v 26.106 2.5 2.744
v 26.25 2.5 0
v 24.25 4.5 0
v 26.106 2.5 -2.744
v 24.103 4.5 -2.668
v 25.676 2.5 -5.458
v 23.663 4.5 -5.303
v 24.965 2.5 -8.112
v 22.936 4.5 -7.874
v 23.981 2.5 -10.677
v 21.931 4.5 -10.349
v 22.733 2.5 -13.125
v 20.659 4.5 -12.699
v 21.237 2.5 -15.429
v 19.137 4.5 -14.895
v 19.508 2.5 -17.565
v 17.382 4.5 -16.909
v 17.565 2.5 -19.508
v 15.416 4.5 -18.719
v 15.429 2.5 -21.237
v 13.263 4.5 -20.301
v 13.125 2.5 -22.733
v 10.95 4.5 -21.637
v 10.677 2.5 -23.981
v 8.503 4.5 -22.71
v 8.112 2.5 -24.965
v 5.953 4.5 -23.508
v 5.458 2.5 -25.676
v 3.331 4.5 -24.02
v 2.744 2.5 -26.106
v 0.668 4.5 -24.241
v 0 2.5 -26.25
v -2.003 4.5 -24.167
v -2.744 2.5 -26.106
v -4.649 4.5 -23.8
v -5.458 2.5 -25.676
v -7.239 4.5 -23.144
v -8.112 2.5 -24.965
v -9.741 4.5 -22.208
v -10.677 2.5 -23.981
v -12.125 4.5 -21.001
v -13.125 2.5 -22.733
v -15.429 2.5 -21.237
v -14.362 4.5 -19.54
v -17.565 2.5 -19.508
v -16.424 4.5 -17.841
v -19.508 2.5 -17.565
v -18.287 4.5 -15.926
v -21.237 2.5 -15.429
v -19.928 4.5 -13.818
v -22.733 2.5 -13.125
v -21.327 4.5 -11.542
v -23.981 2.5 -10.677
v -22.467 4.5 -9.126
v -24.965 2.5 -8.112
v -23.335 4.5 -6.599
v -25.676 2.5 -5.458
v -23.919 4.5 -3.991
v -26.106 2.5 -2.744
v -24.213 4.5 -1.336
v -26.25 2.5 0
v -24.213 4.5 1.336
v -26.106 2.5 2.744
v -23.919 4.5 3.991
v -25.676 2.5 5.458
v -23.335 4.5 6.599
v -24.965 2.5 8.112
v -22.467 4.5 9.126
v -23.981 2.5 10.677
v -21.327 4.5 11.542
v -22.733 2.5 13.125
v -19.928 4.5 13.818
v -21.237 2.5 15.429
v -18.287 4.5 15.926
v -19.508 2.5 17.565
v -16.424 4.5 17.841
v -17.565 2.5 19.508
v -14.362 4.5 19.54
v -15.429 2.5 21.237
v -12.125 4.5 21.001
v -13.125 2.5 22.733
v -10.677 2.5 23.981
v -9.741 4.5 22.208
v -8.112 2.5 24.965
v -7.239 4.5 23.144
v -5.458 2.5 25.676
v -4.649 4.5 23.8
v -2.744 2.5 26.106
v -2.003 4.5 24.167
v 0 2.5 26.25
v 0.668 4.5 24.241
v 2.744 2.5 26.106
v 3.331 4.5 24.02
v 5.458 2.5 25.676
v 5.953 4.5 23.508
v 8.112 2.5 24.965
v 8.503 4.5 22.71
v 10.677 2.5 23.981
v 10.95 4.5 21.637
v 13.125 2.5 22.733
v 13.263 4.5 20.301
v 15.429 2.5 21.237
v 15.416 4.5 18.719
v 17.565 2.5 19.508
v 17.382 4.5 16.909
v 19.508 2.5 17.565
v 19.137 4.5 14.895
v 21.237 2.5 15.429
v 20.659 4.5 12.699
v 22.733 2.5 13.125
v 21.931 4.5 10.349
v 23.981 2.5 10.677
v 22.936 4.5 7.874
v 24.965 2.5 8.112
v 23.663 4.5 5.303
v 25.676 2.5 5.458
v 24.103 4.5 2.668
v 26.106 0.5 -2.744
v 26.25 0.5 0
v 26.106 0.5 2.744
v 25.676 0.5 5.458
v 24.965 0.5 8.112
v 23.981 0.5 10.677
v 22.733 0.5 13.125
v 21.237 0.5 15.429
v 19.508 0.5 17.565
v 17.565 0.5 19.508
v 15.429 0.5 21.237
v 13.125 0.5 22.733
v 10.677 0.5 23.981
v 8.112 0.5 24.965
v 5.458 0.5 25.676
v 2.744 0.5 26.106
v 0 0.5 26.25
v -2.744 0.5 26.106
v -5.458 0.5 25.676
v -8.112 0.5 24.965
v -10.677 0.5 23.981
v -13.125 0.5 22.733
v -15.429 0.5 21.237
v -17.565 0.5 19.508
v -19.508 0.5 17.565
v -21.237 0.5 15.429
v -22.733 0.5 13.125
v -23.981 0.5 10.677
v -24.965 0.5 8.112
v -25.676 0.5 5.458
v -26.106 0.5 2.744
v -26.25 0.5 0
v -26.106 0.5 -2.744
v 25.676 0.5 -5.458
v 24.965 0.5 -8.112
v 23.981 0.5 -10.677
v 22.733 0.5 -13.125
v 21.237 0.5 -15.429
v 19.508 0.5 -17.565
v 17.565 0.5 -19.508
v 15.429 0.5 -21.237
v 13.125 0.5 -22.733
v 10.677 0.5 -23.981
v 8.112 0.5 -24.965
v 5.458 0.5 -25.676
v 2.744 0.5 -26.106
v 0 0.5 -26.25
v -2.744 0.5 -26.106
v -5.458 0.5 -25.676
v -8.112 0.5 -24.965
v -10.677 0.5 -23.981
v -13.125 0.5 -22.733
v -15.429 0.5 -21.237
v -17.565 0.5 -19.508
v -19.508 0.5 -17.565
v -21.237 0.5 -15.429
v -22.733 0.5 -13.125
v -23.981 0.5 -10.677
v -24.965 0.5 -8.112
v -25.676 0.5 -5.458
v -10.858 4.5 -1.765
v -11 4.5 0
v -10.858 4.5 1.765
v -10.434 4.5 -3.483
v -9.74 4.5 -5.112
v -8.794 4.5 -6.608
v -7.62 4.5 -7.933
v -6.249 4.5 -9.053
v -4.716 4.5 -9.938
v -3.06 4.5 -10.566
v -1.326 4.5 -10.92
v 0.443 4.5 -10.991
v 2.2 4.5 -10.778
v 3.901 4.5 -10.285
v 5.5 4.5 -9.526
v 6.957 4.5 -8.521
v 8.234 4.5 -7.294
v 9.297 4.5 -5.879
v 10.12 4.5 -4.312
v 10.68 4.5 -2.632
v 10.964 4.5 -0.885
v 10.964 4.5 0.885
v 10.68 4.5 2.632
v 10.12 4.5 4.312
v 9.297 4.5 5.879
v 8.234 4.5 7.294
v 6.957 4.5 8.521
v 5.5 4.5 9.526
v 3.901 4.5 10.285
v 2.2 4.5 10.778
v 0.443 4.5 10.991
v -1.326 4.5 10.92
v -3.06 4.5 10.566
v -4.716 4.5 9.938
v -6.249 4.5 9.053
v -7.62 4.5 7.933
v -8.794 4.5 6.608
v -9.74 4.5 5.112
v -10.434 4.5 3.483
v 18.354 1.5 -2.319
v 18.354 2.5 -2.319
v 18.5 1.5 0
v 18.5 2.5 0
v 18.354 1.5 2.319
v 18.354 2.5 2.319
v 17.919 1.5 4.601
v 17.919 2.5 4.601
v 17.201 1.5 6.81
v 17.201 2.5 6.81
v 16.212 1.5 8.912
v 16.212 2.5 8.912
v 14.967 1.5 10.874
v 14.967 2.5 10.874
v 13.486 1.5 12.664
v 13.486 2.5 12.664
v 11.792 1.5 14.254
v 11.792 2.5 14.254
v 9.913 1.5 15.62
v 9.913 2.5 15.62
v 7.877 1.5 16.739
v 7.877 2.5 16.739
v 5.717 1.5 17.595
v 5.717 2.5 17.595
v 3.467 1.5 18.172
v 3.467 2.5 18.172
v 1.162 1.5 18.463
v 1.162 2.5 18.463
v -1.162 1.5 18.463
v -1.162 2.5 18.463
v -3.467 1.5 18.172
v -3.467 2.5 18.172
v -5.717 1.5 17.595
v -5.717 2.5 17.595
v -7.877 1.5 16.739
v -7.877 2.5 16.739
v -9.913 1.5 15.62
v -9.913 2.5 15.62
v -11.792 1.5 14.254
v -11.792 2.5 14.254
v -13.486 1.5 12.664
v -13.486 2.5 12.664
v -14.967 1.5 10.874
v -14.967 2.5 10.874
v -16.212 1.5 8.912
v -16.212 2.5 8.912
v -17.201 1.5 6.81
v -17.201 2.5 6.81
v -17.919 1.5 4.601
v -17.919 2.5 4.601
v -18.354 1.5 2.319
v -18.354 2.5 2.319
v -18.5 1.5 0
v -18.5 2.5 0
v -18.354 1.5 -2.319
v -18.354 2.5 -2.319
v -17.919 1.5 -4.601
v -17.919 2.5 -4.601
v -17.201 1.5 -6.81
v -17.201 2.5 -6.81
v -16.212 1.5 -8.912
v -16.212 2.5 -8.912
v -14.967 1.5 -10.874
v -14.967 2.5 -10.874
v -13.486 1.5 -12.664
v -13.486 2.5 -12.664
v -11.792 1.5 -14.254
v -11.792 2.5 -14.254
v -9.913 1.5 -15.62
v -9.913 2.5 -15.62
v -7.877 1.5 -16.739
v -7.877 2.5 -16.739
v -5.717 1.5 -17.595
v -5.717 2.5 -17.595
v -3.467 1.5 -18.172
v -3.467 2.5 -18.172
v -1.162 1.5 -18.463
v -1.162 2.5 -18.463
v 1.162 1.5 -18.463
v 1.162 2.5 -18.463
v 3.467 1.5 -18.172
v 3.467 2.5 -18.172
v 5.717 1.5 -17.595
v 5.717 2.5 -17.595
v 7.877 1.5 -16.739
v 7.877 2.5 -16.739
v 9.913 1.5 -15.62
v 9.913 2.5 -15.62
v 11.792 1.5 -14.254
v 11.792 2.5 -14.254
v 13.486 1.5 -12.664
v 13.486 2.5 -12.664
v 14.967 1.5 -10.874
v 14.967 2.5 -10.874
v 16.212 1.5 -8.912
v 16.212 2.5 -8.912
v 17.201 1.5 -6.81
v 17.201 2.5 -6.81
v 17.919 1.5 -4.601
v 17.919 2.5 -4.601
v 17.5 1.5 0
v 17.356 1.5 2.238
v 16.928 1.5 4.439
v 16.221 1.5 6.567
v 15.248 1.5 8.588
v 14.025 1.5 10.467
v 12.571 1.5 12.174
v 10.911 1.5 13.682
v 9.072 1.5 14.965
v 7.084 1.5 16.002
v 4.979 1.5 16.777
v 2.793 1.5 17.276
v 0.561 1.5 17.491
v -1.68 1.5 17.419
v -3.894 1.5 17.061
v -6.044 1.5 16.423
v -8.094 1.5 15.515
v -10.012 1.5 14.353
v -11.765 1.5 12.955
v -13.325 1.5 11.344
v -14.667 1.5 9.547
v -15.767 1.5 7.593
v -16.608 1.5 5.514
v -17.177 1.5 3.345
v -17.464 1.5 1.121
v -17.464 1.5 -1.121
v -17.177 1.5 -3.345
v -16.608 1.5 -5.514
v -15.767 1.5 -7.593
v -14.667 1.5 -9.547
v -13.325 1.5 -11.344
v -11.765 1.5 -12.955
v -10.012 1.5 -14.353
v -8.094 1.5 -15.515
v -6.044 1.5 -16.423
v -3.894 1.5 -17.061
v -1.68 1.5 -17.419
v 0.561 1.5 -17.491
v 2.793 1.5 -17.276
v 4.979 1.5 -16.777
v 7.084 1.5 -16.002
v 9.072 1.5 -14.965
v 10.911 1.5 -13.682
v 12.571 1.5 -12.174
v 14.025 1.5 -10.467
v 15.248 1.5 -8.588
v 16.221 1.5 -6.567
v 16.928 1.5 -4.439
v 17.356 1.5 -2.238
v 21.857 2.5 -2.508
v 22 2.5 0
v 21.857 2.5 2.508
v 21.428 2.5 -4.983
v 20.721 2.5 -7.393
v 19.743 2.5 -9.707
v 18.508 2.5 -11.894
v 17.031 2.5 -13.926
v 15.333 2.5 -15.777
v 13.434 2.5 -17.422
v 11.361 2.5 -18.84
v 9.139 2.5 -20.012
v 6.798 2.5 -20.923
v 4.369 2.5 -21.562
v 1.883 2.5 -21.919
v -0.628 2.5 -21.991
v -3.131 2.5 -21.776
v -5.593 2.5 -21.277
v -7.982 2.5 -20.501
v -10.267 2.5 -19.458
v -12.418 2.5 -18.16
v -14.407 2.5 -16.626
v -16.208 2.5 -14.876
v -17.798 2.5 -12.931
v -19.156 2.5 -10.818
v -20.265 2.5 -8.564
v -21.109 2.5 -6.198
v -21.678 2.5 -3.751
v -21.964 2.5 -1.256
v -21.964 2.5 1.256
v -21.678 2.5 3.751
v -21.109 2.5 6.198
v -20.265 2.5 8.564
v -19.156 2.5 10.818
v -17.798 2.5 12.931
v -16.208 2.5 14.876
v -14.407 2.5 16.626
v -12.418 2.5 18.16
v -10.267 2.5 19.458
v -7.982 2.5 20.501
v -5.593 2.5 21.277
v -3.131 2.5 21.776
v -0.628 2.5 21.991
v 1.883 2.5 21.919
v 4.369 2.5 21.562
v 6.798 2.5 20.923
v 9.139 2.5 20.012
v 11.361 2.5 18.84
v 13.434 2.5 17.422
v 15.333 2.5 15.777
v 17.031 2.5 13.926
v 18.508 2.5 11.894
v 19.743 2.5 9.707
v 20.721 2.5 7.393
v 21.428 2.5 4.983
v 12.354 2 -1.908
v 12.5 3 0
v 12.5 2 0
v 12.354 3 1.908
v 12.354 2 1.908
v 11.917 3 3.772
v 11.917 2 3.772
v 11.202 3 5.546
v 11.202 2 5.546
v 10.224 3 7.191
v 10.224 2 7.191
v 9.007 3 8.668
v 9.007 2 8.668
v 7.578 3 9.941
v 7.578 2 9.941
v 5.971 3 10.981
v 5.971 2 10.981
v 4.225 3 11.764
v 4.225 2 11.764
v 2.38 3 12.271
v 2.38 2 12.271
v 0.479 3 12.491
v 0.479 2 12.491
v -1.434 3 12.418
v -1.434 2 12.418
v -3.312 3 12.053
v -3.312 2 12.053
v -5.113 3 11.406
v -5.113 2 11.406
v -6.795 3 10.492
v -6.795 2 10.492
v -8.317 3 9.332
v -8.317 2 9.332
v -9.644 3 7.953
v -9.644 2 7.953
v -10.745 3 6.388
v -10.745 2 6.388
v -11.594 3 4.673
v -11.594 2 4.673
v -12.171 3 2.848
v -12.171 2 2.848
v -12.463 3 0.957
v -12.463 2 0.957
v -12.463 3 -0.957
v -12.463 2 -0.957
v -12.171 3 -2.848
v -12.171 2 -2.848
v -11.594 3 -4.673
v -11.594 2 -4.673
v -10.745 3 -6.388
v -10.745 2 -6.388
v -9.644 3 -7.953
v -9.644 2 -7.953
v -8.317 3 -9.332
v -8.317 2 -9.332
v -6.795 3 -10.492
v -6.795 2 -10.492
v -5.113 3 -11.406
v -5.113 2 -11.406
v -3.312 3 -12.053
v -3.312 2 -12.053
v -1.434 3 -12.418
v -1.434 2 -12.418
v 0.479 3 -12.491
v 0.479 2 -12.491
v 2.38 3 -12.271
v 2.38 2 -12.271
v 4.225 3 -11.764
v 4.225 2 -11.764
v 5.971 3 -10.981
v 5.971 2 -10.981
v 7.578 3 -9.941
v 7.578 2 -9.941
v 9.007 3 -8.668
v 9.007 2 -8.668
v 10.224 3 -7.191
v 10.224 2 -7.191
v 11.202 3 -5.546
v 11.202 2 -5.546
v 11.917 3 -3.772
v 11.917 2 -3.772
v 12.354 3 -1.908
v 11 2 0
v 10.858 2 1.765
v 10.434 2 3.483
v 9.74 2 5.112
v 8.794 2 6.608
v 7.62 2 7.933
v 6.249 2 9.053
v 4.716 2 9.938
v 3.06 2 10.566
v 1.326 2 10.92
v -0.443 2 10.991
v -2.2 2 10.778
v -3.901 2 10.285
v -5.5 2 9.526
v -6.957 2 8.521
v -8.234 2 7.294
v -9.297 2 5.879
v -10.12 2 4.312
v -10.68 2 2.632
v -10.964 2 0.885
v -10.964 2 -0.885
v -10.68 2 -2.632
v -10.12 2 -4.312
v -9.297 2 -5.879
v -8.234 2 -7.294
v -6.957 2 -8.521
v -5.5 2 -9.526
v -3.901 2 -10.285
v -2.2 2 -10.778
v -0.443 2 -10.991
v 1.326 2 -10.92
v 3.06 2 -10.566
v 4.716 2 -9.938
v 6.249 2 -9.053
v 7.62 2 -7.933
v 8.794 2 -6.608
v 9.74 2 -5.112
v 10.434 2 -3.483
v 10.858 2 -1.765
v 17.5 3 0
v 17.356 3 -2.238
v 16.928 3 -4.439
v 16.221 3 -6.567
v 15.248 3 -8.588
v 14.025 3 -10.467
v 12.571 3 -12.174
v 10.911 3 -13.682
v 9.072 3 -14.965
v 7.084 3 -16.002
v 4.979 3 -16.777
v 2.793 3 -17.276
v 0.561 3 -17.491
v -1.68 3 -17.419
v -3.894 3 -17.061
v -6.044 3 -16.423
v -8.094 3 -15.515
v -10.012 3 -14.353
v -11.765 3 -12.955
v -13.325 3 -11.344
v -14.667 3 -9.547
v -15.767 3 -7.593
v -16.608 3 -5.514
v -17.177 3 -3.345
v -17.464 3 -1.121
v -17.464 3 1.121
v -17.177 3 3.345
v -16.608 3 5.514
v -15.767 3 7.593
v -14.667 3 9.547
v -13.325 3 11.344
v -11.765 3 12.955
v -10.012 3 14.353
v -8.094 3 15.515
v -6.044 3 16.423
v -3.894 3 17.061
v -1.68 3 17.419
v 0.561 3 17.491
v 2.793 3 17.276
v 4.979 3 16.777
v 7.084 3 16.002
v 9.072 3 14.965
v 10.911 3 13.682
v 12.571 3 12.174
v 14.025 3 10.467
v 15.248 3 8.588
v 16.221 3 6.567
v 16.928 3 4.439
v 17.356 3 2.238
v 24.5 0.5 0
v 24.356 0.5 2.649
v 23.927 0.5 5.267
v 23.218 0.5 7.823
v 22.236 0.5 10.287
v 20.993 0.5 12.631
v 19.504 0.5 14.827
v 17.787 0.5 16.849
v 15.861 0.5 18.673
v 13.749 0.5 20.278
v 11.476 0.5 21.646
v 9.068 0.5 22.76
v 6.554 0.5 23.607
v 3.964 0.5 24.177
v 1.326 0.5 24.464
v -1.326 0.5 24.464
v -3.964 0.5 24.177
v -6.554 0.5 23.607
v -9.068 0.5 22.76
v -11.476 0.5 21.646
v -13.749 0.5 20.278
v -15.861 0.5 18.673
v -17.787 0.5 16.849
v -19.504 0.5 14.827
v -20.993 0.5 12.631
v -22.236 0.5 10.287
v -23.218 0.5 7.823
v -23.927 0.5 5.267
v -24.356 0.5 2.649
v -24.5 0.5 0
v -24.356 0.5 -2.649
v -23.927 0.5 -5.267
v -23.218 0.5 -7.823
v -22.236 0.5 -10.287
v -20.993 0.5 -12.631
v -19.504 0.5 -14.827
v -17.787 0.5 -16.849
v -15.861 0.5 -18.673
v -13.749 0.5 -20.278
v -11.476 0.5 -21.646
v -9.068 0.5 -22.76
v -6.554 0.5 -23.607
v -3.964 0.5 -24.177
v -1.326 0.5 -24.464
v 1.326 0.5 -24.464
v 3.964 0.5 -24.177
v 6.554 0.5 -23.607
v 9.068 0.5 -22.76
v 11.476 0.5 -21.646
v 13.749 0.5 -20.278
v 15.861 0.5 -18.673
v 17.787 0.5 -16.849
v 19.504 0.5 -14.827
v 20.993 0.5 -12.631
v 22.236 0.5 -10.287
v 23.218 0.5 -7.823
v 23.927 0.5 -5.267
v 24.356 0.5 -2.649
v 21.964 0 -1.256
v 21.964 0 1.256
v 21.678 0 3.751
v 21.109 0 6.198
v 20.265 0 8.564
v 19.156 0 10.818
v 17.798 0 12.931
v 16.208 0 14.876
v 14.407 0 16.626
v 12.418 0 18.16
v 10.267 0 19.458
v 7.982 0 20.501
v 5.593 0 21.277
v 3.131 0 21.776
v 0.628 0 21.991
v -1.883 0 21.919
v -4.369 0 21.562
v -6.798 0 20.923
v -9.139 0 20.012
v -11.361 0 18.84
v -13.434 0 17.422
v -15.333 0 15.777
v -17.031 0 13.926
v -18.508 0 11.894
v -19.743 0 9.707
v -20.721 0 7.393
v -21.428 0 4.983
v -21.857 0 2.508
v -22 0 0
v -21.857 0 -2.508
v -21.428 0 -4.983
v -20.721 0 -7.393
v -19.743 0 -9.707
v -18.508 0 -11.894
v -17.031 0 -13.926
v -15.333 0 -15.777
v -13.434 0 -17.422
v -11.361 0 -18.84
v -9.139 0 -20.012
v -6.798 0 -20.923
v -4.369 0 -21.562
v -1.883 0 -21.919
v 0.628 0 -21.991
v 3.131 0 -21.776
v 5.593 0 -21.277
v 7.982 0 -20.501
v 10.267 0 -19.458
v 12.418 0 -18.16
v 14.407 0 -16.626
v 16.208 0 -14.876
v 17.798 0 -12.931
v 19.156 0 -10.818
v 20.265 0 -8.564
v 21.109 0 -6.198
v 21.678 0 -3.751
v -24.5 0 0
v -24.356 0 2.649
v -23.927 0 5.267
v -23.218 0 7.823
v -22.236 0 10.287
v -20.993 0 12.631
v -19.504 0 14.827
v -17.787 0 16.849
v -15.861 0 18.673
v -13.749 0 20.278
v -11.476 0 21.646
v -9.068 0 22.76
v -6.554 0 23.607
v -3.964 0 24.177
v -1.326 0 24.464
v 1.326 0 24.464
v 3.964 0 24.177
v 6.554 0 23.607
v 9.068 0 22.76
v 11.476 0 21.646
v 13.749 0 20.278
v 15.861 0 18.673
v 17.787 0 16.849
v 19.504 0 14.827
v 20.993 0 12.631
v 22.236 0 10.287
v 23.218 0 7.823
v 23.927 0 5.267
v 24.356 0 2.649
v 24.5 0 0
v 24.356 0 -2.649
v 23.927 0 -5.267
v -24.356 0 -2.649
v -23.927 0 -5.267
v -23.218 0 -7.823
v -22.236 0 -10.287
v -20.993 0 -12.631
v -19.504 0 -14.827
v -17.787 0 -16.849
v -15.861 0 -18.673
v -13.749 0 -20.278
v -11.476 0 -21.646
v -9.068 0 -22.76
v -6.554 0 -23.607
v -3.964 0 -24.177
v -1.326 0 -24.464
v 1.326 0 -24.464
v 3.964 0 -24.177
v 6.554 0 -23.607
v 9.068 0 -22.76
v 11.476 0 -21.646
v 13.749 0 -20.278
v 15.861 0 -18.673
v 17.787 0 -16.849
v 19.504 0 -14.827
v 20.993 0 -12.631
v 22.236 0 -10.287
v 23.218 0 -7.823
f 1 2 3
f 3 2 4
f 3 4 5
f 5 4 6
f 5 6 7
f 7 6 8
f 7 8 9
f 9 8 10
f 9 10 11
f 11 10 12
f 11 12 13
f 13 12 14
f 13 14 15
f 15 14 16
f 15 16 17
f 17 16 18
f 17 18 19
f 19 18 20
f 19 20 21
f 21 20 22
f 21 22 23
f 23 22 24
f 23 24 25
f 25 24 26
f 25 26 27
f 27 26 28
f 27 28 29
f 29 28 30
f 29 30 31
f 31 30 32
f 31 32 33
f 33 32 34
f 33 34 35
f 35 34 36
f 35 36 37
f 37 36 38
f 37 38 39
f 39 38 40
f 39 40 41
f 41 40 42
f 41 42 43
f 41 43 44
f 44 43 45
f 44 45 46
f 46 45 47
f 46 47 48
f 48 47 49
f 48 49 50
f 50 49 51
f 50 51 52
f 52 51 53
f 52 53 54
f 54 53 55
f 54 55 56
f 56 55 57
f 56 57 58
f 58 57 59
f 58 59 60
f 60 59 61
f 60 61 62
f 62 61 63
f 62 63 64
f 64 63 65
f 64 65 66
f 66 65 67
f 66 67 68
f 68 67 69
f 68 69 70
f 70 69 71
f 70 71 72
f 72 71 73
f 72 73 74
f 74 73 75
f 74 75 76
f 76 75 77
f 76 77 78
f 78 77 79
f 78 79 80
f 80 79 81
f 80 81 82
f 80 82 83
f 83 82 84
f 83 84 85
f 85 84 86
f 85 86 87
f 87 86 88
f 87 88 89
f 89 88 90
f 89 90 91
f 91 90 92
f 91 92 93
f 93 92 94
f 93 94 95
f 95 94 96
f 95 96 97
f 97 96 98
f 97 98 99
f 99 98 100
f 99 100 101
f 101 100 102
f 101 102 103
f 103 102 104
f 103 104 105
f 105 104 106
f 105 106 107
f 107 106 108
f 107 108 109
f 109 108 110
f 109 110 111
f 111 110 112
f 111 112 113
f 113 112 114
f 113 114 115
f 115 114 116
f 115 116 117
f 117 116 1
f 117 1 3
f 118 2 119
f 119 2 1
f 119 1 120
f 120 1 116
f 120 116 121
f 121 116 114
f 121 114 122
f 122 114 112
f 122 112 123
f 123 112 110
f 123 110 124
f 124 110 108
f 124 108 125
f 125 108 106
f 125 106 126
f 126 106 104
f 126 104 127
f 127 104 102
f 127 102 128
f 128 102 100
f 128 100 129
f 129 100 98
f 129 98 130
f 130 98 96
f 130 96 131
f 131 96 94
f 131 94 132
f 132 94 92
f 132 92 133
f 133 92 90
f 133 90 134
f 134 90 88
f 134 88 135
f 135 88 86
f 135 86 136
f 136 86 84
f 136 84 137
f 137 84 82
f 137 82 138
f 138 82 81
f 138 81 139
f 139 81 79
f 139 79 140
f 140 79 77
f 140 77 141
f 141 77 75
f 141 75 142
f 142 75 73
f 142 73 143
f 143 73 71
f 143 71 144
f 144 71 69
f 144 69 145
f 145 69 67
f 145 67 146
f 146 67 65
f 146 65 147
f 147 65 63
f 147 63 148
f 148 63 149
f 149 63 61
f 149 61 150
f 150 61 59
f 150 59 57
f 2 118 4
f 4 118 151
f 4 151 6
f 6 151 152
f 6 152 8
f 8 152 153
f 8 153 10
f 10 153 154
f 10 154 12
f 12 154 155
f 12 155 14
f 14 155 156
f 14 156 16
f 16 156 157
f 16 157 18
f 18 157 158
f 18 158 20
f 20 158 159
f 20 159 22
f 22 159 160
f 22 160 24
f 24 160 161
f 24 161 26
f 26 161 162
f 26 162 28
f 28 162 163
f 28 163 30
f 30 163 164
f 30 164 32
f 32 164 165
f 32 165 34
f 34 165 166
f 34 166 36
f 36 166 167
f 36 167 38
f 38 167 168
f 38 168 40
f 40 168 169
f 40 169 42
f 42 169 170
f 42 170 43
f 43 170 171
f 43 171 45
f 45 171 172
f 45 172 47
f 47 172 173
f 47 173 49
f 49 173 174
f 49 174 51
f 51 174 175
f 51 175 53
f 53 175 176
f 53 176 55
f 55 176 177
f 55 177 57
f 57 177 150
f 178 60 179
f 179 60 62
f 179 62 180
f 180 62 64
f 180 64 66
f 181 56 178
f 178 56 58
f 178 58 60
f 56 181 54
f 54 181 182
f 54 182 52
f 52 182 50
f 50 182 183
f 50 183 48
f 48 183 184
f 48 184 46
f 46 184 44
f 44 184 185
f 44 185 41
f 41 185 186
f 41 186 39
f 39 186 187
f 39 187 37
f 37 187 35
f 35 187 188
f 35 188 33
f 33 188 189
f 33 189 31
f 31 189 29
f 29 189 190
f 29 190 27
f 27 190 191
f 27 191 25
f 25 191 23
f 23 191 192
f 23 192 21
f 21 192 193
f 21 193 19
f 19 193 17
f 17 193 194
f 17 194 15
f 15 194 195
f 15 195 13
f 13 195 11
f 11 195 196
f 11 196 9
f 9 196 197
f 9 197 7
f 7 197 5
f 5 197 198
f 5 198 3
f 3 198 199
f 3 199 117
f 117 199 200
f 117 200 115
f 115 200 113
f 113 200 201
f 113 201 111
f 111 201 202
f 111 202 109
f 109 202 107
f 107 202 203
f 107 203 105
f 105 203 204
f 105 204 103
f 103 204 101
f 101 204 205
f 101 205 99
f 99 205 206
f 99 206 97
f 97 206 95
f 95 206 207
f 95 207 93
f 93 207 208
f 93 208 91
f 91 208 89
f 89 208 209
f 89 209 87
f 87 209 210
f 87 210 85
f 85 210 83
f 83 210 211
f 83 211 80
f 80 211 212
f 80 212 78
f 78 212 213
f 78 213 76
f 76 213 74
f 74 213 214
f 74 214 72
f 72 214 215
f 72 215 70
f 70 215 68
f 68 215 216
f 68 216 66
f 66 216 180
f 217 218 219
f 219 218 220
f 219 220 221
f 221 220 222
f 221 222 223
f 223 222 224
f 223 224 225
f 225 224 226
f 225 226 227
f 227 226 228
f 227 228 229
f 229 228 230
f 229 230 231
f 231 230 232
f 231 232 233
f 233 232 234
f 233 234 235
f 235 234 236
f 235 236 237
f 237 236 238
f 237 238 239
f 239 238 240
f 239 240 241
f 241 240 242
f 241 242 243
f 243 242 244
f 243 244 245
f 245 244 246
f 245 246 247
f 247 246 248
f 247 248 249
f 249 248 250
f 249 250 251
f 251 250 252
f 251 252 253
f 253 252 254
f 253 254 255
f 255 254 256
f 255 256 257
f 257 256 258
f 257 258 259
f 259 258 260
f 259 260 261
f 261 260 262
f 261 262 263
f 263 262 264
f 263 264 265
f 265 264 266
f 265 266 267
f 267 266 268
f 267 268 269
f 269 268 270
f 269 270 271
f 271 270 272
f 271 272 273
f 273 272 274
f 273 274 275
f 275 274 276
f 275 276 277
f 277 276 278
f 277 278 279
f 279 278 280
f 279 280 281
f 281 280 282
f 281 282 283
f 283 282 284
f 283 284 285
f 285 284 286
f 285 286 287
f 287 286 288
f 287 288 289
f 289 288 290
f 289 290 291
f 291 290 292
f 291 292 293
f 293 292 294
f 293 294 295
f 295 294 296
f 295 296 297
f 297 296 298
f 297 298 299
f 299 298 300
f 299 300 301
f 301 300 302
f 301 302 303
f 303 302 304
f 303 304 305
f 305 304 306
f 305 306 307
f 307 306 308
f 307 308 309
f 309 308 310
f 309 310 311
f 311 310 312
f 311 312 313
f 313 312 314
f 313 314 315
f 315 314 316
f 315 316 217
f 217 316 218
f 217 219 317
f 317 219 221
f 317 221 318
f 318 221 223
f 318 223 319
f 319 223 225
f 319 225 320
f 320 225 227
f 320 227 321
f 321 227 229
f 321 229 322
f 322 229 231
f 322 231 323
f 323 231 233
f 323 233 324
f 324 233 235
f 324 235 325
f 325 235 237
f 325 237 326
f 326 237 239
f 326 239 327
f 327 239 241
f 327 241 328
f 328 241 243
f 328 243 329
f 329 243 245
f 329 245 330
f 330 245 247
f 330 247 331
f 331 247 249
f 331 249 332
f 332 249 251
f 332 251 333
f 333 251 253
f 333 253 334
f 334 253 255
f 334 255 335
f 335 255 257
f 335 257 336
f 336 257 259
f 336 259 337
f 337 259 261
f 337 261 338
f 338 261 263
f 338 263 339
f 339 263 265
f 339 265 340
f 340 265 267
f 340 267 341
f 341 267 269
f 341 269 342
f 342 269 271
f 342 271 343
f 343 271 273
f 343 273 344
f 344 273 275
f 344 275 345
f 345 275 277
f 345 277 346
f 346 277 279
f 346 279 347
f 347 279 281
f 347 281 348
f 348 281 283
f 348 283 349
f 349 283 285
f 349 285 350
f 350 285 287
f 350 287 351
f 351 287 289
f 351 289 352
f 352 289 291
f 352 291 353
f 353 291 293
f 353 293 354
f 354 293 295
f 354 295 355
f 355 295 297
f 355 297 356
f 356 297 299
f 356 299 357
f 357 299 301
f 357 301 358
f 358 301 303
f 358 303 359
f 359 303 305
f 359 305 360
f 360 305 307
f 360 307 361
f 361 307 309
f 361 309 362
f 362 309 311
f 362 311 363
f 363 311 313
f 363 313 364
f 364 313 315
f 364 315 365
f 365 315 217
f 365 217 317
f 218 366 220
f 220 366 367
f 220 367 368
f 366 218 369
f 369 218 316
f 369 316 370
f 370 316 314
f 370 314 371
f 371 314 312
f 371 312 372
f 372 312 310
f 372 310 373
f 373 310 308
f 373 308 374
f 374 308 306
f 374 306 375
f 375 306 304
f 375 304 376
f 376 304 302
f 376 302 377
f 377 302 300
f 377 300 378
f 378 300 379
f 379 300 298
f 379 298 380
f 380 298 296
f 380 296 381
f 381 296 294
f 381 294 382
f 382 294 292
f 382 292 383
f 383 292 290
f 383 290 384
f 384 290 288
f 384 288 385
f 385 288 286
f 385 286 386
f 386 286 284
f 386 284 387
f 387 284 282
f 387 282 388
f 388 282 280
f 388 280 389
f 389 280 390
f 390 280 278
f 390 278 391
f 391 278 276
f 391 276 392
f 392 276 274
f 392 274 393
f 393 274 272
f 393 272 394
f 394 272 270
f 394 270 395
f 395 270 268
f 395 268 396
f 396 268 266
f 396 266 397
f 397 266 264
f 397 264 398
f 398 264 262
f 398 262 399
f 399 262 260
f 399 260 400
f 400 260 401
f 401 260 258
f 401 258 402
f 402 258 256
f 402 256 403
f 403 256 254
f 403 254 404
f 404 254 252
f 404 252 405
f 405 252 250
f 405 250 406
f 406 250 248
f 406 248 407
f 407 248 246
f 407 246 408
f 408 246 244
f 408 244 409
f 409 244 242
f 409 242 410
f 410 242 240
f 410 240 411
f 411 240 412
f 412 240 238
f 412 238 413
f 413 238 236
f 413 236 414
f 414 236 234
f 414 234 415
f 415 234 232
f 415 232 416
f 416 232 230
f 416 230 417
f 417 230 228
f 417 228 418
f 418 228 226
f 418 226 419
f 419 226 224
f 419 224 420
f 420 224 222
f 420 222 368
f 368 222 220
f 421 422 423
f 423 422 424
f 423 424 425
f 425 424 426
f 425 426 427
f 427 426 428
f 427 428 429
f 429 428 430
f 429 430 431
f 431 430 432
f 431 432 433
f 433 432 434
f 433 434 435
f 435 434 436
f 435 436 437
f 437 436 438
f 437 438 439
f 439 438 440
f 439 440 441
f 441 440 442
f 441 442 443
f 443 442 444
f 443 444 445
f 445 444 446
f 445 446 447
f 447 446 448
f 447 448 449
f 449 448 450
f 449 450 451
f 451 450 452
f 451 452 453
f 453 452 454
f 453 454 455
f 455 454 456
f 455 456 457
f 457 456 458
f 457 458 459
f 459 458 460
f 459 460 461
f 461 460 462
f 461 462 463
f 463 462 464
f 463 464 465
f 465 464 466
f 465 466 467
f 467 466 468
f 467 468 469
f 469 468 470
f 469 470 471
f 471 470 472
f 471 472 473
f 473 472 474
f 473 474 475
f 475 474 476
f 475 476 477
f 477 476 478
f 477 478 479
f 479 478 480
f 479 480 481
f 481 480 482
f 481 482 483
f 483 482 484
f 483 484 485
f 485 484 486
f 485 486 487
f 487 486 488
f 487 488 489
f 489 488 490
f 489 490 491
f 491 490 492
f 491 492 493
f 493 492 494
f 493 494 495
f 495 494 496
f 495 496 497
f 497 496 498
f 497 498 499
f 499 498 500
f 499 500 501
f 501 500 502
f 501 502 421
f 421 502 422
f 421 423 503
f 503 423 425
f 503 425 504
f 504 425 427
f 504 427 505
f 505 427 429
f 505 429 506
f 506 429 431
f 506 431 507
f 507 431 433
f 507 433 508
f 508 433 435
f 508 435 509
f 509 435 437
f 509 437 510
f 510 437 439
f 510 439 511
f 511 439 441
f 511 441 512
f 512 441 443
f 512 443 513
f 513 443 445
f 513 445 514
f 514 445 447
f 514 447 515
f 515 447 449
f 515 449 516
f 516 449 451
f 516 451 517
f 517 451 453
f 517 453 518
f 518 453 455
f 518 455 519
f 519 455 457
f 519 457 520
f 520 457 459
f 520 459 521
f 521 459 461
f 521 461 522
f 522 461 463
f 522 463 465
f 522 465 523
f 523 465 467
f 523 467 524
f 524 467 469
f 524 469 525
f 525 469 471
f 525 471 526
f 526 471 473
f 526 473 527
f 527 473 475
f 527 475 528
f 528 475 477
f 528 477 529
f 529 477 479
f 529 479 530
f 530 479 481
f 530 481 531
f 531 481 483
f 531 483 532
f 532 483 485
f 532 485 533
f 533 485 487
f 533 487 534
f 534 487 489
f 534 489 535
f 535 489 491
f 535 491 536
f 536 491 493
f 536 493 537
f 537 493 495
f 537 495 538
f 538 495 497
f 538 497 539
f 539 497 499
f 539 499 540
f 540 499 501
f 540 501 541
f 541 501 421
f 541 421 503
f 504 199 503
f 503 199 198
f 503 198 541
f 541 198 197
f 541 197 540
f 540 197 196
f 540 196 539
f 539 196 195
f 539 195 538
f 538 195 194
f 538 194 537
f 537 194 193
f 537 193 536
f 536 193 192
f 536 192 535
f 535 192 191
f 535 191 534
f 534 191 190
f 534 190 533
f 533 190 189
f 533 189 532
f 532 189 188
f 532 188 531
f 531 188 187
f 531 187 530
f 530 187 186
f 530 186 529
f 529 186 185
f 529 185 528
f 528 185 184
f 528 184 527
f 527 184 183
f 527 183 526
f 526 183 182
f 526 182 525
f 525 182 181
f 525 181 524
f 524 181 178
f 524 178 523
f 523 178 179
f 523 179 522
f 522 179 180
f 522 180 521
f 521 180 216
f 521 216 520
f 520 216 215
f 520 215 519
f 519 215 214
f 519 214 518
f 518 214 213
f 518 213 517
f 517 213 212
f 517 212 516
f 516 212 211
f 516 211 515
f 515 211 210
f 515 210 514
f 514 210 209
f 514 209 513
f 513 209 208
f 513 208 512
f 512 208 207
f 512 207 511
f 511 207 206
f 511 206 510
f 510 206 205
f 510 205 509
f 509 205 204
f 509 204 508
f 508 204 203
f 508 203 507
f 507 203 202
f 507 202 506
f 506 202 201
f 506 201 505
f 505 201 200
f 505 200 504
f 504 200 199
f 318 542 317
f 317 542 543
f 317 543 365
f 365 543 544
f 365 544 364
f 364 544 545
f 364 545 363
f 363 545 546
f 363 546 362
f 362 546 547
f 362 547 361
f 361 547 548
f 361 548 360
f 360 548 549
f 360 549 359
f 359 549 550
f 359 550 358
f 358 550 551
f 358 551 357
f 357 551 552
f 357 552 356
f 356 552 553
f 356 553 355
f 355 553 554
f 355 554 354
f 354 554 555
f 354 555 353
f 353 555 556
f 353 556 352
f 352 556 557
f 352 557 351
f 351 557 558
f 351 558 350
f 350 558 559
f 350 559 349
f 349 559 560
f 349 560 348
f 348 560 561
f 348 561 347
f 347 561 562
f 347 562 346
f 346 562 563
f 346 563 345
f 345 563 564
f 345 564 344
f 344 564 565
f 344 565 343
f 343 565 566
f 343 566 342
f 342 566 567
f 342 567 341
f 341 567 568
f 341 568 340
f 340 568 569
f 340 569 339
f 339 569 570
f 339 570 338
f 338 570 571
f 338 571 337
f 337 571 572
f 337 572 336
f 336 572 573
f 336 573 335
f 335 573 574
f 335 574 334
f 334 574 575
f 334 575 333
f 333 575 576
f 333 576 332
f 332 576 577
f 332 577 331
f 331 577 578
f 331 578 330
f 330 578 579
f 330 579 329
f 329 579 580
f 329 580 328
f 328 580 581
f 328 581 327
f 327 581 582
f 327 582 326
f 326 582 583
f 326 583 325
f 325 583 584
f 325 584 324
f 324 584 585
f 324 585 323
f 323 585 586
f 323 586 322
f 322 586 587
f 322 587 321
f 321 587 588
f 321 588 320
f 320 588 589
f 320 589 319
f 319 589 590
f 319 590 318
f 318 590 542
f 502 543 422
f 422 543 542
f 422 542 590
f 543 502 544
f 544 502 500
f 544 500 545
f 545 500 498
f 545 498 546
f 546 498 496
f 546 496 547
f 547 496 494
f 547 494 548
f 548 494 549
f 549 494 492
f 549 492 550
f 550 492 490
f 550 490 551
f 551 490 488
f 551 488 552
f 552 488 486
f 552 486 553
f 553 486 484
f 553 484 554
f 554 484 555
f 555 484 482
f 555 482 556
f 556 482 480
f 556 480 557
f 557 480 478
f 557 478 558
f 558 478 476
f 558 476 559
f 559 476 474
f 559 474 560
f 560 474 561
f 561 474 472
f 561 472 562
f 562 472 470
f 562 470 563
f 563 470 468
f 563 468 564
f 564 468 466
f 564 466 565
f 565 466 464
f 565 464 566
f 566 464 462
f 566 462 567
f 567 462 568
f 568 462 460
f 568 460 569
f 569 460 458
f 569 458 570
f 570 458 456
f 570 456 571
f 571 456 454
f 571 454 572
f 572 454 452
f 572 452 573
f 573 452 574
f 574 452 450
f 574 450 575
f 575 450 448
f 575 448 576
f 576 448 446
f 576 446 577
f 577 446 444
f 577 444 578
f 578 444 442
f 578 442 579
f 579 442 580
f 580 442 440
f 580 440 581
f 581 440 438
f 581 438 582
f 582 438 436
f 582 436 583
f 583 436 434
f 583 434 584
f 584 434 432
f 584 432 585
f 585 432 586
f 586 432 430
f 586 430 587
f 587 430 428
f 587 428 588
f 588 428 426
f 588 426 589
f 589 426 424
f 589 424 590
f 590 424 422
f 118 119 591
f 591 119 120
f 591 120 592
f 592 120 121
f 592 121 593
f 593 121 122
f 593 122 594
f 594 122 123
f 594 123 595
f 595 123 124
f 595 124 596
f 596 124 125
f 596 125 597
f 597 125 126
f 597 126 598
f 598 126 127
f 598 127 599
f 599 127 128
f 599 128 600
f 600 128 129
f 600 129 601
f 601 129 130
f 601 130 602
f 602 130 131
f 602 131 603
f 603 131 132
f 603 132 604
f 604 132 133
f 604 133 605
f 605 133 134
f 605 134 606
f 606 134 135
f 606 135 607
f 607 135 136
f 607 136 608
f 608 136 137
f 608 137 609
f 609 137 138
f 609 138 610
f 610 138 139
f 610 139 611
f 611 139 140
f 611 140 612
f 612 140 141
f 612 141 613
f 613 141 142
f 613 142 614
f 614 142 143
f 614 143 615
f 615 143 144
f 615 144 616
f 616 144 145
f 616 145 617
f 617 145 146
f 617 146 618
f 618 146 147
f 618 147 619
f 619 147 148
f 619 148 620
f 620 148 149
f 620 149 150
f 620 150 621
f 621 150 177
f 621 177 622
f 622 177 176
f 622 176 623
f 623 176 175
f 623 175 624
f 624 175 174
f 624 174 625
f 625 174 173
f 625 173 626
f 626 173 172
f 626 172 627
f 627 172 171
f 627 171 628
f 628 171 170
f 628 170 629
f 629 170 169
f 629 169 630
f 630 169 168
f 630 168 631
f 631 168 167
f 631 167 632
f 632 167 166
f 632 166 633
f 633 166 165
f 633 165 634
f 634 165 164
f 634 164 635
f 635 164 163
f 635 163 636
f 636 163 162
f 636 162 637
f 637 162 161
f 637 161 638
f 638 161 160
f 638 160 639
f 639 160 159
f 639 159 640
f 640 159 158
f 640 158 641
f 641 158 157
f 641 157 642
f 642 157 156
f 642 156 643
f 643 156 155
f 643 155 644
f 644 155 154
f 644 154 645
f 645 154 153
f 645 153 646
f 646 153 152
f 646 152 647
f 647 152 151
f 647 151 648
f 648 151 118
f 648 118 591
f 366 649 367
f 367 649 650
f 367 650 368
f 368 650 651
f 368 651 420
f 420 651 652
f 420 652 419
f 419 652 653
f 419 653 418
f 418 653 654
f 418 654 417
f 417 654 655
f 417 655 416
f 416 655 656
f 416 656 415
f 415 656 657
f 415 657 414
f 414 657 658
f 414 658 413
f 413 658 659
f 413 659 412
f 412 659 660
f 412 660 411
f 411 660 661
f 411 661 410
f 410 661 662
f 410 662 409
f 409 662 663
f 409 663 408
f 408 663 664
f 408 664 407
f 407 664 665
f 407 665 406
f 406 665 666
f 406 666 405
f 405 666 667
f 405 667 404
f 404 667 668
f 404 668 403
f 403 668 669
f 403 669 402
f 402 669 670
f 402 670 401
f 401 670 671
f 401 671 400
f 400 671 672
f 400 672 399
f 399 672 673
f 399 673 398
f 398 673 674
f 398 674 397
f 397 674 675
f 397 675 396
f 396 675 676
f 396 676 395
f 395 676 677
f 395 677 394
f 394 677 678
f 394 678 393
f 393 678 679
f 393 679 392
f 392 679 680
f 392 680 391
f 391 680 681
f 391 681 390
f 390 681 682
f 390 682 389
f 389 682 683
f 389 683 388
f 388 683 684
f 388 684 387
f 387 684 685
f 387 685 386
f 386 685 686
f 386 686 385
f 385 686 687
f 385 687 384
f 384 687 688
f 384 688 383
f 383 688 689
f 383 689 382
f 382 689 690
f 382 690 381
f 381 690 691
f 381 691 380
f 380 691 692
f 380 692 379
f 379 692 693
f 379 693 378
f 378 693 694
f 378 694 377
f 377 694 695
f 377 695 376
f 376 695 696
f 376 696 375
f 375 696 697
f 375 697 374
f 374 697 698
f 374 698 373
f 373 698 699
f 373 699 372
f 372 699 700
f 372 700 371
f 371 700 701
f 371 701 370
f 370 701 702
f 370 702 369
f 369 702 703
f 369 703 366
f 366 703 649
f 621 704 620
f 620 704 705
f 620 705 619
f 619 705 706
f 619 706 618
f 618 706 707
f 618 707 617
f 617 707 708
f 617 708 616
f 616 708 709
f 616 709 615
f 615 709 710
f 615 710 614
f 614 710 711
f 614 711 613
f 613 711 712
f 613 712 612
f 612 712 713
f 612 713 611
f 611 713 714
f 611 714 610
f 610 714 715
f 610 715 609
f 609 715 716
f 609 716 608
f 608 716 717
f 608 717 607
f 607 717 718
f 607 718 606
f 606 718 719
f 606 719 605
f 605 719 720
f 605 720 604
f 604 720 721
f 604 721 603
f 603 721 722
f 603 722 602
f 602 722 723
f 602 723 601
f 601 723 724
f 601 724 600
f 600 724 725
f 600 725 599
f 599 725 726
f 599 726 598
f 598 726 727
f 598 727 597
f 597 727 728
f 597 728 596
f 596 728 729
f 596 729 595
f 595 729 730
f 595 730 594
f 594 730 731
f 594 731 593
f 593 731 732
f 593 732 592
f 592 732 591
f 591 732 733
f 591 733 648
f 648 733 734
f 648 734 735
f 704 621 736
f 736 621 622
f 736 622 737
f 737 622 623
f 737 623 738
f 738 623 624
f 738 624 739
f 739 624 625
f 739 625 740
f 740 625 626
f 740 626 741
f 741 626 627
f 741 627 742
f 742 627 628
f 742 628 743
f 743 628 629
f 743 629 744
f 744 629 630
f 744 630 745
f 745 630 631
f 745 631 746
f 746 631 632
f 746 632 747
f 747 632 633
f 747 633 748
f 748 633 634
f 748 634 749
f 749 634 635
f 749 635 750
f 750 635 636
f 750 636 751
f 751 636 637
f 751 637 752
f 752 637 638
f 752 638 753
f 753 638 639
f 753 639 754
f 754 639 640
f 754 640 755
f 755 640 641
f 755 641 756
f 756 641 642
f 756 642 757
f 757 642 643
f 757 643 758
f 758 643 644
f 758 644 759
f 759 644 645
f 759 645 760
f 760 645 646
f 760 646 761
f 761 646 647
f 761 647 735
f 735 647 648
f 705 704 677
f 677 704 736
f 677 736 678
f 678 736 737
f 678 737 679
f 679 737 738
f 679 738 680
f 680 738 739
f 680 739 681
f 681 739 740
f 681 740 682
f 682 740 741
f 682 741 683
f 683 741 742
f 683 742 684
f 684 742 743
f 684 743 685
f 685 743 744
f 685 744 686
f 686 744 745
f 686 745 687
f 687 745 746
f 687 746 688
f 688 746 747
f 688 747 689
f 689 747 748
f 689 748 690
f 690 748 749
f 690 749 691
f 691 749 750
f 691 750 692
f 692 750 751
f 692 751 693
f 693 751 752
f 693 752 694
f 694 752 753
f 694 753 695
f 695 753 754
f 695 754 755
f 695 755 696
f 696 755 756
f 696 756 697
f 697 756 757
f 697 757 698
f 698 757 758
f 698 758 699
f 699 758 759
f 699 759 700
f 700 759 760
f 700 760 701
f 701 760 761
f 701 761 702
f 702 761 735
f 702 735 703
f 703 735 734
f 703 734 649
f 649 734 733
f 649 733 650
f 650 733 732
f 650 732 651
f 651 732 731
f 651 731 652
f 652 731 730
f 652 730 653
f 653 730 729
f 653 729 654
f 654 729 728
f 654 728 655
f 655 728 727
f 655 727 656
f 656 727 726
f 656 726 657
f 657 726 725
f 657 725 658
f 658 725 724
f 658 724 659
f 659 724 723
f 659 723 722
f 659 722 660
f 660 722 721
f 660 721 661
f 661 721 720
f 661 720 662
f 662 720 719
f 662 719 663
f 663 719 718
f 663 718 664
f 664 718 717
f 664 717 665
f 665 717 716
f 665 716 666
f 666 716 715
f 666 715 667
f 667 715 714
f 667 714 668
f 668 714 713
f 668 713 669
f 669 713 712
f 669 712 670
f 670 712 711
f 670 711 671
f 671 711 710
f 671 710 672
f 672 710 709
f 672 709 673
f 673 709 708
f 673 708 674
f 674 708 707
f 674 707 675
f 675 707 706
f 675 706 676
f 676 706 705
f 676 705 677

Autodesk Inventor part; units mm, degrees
ref_plane "YZ Plane" through (0, 0, 0) normal (1, 0, 0) x (0, 1, 0)
ref_plane "XZ Plane" through (0, 0, 0) normal (0, 1, 0) x (-1, 0, 0)
ref_plane "XY Plane" through (0, 0, 0) normal (0, 0, 1) x (1, 0, 0)
sketch "Sketch1" plane through (0, 0, 0) normal (0, 1, 0) x (-1, 0, 0)
  circle A0 centre (0, 0) radius 24.5
  circle A1 centre (0, 0) radius 22
  dimension "d0" = 49
  dimension "d1" = 44
extrude "Extrusion1" add sketch "Sketch1" along normal blind 0.5
sketch "Sketch2" plane through (0, 0.5, 0) normal (0, 1, 0) x (1, 0, 0)
  circle A0 centre (0, 0) radius 26.25
  dimension "d4" = 52.5
extrude "Extrusion2" add sketch "Sketch2" along normal blind 4
sketch "Sketch3" plane through (0, 0.5, 0) normal (0, -1, 0) x (1, 0, 0)
  circle A0 centre (0, 0) radius 17.5
  dimension "d7" = 35
extrude "Extrusion3" cut sketch "Sketch3" against normal blind 2.5
sketch "Sketch4" plane through (0, 3, 0) normal (0, -1, 0) x (1, 0, 0)
  circle A0 centre (0, 0) radius 11
  dimension "d10" = 22
extrude "Extrusion4" cut sketch "Sketch4" against normal blind 4
sketch "Sketch5" plane through (0, 3, 0) normal (0, -1, 0) x (1, 0, 0)
  circle A0 centre (0, 0) radius 11 projected
  circle A1 centre (0, 0) radius 11
  circle A2 centre (0, 0) radius 12.5
  dimension "d13" = 25
extrude "Extrusion5" add sketch "Sketch5" along normal blind 1
sketch "Sketch6" plane through (0, 0.5, 0) normal (0, -1, 0) x (1, 0, 0)
  circle A0 centre (0, 0) radius 17.5
  circle A1 centre (0, 0) radius 22 projected
  circle A2 centre (0, 0) radius 22
extrude "Extrusion6" cut sketch "Sketch6" against normal blind 2
sketch "Sketch7" plane through (0, 2.5, 0) normal (0, -1, 0) x (1, 0, 0)
  circle A0 centre (0, 0) radius 17.5
  circle A1 centre (0, 0) radius 18.5
  dimension "d18" = 37
extrude "Extrusion7" add sketch "Sketch7" along normal blind 1
chamfer "Chamfer1" distance 2 angle 45 1 edges at (-26.25, 4.5, 0)
properties part number "Grease retainer disk"
